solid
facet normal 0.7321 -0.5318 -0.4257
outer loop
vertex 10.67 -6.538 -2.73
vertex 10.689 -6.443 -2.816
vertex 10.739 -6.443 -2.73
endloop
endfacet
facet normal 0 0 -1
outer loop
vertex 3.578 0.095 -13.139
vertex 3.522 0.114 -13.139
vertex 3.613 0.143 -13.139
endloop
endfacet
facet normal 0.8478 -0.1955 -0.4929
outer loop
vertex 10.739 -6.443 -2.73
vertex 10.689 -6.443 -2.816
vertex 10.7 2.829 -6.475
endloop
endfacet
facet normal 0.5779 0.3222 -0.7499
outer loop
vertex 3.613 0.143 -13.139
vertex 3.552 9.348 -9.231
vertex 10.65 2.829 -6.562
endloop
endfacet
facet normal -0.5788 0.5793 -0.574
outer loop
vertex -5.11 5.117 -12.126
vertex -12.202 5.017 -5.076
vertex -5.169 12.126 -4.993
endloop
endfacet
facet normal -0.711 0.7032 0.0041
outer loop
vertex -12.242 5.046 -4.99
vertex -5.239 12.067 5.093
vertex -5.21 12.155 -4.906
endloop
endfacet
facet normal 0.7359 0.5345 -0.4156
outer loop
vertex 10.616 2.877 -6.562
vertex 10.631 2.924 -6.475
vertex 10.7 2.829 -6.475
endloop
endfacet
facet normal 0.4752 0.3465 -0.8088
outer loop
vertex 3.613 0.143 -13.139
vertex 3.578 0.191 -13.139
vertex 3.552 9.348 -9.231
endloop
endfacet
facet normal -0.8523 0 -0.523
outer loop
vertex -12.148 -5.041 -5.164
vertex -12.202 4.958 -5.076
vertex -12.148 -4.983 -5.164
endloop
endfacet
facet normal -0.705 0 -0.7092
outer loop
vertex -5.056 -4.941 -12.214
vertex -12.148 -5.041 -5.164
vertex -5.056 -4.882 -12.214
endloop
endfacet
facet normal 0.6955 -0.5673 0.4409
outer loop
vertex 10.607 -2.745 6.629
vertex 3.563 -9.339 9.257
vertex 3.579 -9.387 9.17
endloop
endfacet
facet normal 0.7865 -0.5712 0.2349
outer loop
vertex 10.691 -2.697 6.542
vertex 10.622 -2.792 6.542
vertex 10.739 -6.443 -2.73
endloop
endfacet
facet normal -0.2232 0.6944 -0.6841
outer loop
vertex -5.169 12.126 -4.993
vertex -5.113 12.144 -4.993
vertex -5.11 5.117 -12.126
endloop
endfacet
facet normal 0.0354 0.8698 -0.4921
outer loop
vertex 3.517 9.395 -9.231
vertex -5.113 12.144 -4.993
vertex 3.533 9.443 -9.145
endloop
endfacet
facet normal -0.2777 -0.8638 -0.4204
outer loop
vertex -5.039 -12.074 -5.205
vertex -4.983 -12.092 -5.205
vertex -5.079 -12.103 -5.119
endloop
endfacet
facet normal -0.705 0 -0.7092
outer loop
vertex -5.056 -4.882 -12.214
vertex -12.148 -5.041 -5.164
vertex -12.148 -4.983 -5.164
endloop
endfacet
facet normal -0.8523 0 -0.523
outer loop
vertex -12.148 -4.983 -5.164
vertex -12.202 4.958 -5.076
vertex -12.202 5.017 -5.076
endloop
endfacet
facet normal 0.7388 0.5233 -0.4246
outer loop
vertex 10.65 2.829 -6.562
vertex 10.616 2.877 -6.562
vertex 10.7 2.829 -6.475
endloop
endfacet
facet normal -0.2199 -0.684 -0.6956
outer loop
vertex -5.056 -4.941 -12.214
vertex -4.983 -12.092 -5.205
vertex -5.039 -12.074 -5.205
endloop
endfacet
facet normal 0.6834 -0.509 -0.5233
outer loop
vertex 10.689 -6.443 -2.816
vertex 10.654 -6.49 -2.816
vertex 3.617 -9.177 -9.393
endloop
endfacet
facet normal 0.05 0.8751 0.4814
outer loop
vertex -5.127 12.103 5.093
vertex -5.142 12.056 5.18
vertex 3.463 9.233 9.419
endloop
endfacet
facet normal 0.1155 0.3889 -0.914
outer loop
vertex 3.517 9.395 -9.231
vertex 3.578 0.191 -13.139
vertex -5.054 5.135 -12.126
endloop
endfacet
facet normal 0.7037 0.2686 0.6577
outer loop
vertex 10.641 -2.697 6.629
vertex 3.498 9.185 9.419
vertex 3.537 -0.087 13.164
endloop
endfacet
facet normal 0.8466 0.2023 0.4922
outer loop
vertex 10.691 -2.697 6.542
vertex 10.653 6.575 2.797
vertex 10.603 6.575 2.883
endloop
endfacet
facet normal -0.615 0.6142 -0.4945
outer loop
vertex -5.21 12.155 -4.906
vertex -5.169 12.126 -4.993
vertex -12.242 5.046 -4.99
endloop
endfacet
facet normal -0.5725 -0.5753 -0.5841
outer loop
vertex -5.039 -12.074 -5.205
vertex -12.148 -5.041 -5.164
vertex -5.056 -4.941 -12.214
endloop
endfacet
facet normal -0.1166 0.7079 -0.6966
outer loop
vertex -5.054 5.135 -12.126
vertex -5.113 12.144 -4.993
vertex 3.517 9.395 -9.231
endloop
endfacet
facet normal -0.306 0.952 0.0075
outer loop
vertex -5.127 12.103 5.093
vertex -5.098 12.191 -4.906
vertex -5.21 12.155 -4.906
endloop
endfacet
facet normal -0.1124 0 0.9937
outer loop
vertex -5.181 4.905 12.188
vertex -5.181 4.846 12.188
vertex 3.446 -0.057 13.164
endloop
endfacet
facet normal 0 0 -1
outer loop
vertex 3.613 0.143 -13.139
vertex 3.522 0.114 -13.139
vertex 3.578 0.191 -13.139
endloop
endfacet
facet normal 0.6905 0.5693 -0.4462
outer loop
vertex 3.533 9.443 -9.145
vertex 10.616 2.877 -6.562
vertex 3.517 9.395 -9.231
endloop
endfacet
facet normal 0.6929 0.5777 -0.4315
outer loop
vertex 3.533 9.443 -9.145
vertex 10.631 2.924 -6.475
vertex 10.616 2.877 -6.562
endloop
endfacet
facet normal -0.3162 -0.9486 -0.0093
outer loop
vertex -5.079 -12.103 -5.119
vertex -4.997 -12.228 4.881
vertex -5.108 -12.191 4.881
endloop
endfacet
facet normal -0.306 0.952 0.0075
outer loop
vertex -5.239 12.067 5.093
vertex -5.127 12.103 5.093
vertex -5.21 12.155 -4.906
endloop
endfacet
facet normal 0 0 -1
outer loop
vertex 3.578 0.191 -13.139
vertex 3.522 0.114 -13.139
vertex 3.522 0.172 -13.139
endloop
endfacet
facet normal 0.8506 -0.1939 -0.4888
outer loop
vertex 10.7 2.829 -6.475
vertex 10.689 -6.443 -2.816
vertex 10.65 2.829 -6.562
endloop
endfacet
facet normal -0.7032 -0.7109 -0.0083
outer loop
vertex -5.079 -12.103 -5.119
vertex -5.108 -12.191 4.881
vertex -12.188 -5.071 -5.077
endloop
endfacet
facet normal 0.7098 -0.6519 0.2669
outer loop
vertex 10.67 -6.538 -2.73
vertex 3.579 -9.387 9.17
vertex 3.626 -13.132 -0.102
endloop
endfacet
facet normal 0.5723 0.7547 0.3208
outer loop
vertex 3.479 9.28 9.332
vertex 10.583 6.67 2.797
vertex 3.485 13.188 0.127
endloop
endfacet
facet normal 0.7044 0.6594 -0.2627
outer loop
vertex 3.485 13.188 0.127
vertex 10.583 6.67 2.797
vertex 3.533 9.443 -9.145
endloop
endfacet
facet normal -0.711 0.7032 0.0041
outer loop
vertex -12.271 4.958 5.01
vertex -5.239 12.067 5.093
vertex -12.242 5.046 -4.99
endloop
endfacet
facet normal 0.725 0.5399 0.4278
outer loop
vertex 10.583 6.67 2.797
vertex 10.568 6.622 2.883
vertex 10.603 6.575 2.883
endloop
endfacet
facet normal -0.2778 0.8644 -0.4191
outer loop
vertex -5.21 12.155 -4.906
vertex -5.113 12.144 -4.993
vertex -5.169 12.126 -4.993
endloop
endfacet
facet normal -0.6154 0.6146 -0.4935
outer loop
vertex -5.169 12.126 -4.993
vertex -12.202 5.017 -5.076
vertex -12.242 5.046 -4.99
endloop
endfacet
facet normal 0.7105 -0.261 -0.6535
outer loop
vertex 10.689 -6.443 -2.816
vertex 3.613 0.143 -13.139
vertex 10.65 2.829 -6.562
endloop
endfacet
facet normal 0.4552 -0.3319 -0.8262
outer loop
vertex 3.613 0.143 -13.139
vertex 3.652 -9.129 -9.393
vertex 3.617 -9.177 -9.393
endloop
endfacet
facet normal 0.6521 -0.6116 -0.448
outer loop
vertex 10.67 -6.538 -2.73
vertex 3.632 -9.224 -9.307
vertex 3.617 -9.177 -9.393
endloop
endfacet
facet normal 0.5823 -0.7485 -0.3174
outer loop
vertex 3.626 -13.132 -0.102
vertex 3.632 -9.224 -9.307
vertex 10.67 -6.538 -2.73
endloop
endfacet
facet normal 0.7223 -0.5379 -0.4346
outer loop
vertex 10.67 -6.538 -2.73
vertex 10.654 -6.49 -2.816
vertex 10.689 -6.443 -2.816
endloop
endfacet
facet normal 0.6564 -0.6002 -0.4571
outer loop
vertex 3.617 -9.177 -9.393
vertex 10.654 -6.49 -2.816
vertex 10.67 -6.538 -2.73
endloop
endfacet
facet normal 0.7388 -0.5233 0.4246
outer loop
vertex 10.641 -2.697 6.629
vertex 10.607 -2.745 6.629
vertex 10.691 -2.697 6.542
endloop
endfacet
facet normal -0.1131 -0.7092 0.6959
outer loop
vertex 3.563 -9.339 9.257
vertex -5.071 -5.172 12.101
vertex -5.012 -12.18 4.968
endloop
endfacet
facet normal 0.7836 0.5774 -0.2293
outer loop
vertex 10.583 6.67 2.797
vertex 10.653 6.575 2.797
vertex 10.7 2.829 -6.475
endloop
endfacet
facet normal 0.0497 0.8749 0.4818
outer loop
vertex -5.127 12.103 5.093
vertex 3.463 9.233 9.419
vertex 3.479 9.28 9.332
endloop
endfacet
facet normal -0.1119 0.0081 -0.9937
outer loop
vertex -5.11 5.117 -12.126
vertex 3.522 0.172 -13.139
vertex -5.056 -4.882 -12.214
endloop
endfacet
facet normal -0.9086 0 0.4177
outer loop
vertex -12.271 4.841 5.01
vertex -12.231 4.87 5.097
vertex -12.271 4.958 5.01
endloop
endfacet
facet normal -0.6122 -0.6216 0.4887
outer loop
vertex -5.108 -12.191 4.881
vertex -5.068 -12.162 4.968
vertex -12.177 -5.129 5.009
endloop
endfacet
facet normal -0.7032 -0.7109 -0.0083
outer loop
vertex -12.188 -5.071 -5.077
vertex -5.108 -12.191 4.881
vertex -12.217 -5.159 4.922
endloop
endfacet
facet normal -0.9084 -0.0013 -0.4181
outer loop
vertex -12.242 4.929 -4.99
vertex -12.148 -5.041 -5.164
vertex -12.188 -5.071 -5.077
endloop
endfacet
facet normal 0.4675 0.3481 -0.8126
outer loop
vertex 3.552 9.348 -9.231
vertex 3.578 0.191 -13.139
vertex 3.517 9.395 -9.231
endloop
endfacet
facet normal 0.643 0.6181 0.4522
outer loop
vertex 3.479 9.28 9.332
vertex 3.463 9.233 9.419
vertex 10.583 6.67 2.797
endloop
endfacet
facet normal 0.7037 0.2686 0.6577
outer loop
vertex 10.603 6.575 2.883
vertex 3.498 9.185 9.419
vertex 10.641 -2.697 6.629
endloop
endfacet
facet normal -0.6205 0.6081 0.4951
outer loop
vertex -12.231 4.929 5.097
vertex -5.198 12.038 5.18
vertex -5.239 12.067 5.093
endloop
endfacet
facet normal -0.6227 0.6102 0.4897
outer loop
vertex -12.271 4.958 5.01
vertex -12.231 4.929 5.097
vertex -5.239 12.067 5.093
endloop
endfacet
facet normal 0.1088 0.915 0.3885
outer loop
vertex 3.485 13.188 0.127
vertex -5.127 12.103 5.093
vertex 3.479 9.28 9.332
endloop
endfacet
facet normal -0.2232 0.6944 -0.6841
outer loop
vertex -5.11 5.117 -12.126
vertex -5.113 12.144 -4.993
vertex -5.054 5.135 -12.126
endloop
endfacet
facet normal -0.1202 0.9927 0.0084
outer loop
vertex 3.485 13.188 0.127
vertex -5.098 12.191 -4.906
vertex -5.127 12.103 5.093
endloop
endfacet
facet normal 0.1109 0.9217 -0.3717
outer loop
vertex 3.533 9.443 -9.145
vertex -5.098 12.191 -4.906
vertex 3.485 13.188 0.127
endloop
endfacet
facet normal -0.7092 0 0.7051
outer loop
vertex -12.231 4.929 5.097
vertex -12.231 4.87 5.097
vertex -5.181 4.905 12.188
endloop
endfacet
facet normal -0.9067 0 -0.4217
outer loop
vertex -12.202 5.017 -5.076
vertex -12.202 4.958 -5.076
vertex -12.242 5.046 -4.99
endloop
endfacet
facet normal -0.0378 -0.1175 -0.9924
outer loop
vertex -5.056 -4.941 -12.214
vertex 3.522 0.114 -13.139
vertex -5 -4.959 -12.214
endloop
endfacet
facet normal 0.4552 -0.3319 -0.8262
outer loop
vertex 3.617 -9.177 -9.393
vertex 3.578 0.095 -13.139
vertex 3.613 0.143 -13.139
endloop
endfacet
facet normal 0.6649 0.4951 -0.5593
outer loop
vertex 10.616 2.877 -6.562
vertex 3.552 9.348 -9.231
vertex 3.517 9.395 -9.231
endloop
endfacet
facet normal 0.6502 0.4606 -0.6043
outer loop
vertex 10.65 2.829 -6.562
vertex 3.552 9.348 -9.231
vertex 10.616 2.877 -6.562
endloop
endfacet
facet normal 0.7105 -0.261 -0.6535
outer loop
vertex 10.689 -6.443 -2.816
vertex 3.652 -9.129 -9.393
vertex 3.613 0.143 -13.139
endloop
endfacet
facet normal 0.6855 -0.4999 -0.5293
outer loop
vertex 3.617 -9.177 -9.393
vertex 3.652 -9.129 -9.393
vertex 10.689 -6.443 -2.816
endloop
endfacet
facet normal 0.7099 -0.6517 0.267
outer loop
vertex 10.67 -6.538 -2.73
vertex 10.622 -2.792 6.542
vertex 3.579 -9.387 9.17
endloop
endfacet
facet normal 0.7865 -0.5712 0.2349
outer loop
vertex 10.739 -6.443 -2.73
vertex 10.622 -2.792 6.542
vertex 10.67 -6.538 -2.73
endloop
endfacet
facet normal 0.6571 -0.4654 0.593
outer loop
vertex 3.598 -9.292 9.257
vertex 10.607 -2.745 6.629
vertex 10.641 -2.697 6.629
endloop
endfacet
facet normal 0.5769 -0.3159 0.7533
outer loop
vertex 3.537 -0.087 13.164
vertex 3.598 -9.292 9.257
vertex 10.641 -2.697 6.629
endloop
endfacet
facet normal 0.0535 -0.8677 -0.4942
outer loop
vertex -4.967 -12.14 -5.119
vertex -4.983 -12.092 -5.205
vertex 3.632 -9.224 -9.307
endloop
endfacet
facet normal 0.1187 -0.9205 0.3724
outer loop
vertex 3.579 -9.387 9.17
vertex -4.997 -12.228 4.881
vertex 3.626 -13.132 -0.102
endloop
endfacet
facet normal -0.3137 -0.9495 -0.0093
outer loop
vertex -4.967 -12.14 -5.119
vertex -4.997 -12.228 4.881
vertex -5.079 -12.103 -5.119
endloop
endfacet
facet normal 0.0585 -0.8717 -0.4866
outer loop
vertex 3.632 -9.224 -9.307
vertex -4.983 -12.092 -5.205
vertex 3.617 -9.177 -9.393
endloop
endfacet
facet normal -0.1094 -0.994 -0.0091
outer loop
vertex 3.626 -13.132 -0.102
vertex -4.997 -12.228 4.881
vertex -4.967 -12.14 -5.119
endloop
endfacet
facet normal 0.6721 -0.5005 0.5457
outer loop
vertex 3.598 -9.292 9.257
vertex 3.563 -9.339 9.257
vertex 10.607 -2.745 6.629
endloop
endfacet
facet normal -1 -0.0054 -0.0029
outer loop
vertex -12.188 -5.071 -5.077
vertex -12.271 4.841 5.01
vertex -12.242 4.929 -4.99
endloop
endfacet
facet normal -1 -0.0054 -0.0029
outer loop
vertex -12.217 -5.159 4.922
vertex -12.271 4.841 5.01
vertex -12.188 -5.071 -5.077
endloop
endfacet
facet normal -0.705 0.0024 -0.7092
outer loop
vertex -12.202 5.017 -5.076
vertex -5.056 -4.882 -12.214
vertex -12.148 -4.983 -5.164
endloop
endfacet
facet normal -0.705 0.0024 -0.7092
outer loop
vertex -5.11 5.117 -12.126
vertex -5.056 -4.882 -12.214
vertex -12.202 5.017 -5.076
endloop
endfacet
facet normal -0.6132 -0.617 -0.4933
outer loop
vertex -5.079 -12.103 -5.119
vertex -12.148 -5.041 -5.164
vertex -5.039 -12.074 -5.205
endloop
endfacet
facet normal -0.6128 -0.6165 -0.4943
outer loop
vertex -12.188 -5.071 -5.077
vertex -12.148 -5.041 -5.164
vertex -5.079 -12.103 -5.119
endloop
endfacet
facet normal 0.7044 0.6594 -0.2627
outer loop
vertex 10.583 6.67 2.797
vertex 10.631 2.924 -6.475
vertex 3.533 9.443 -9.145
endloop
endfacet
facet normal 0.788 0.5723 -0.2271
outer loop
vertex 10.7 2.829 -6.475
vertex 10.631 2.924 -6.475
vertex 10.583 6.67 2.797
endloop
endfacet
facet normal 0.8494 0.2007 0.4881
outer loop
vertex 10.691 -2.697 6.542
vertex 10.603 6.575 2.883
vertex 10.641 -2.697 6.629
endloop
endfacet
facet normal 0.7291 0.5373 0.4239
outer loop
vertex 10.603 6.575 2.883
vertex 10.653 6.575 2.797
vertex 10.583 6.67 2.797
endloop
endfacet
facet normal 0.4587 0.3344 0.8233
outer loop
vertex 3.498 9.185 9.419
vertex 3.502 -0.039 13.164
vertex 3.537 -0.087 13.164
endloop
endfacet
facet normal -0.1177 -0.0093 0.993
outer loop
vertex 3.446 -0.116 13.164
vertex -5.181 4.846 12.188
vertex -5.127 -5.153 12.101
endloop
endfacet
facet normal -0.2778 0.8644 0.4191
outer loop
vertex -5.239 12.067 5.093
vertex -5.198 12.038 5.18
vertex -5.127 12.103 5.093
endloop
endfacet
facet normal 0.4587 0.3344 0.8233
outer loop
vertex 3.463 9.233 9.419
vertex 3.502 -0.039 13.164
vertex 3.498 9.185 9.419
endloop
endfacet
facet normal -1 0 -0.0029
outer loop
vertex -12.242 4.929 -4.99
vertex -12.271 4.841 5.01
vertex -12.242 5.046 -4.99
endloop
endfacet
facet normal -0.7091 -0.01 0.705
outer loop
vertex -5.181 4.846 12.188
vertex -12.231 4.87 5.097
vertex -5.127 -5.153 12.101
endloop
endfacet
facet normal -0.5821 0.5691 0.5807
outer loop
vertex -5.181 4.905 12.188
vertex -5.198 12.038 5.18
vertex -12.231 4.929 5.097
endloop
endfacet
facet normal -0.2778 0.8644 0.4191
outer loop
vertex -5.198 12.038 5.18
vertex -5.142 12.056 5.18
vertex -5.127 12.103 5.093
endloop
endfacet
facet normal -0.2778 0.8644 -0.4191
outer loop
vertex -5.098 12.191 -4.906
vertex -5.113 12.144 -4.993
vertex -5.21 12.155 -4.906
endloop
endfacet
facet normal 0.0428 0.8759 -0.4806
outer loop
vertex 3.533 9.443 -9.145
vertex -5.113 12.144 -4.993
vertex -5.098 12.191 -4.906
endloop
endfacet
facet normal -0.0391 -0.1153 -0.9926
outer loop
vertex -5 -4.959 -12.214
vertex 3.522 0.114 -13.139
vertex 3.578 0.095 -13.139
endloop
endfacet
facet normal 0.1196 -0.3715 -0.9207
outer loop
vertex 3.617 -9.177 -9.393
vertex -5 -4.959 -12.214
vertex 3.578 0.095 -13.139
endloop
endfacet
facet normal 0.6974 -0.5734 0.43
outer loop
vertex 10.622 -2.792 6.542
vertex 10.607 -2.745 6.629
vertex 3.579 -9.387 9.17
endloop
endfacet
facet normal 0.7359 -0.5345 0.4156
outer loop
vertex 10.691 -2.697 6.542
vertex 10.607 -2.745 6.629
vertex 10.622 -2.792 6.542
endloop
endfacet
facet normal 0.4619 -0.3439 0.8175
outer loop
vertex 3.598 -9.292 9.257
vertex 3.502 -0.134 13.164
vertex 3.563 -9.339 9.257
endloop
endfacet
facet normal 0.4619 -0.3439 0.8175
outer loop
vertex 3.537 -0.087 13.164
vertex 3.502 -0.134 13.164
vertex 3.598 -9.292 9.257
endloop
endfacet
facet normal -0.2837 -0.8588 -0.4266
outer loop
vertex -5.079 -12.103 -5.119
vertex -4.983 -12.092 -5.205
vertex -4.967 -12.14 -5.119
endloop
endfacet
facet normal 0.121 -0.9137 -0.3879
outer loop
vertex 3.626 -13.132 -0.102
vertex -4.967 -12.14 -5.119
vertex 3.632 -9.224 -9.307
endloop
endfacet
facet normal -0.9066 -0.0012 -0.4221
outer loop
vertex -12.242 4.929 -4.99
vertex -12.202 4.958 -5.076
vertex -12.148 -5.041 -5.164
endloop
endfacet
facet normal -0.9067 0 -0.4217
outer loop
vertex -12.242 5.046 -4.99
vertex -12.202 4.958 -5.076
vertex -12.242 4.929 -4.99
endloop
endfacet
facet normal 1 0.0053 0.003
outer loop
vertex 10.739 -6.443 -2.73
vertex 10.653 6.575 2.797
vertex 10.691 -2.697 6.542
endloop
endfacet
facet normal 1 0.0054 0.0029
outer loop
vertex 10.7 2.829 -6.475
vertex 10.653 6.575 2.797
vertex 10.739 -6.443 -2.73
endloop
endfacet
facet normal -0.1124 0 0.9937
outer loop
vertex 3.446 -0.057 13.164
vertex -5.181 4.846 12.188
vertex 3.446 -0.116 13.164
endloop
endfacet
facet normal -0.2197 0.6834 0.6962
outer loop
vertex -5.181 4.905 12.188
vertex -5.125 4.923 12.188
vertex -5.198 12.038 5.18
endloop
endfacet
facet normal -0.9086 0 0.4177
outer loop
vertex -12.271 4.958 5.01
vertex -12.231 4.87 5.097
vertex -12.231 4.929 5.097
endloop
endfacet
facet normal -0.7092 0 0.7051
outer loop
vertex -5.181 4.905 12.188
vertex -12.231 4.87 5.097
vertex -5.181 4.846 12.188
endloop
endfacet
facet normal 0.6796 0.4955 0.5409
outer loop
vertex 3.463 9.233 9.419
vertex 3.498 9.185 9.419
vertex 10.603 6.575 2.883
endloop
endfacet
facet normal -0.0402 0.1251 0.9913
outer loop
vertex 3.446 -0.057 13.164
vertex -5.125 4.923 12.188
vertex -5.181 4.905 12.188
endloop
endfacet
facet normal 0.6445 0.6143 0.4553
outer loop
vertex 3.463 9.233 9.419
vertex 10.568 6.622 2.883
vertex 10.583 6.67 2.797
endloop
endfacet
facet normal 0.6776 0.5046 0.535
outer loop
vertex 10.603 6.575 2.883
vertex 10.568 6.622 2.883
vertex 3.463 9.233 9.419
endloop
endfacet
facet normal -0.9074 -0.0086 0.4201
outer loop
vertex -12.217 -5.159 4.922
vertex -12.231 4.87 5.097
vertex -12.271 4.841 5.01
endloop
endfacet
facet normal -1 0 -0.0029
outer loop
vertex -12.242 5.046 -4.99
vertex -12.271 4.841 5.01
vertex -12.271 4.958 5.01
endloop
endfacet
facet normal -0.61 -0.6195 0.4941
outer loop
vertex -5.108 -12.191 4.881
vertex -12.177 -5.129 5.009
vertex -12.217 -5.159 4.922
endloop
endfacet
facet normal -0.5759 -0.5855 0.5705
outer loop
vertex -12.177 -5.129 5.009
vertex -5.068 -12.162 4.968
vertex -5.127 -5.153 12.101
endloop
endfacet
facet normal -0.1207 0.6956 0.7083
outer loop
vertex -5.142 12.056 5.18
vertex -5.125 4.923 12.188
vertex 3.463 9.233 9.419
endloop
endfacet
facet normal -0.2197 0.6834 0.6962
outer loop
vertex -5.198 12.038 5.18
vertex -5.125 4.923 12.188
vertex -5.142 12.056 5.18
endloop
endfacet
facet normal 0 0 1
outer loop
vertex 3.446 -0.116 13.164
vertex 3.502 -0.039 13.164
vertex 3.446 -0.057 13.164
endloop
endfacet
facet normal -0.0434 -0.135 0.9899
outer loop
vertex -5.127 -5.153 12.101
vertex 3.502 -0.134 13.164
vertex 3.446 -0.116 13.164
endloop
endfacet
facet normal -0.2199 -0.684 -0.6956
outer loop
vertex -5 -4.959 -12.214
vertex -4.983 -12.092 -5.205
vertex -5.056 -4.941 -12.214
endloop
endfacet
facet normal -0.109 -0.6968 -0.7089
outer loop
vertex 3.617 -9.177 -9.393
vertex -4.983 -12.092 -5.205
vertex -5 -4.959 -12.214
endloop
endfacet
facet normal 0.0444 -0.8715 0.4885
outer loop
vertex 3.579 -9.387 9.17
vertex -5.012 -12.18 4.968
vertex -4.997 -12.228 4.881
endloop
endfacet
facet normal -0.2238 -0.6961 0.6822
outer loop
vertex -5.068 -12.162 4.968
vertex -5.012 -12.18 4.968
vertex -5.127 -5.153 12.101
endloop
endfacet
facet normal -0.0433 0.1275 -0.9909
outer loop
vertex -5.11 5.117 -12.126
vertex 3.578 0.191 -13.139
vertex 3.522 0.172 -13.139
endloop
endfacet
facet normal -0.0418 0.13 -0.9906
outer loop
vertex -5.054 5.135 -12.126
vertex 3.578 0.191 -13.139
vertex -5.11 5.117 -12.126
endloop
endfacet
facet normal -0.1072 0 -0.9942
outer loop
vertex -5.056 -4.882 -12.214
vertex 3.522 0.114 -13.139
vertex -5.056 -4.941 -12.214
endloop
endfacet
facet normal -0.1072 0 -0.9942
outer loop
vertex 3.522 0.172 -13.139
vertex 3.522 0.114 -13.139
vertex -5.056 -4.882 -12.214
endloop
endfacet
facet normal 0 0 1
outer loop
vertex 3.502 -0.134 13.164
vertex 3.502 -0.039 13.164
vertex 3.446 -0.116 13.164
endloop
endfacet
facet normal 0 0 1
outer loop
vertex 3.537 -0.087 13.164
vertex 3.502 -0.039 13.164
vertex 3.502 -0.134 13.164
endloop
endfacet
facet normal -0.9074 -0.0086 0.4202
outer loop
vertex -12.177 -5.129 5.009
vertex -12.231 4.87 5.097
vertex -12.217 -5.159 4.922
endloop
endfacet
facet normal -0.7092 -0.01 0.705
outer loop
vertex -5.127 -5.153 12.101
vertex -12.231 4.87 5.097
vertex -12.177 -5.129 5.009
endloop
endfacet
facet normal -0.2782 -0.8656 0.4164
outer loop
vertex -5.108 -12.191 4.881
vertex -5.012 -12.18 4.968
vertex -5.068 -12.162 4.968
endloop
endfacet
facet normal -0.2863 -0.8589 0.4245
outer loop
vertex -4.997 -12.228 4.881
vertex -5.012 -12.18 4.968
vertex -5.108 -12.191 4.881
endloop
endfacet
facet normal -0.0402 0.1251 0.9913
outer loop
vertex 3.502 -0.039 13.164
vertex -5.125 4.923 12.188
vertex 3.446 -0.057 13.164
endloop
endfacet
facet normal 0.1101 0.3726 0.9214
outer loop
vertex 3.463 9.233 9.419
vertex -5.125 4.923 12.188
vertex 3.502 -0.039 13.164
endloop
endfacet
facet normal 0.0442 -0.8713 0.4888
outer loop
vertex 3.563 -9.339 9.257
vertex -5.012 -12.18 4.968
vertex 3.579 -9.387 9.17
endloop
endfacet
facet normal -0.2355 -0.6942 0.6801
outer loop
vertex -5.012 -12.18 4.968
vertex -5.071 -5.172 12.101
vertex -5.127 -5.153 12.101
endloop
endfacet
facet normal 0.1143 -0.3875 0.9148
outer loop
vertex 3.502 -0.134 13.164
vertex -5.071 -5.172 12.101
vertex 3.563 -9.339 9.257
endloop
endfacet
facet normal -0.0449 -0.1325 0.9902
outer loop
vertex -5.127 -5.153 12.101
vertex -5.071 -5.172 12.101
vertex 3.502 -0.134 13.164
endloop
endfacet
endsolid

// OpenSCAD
// Auto-generated OpenSCAD file

    inner_points = 10*[[-0.5027427746732974, -1.2132577404539668, 0.4881043623012211], [-0.499831290049384, -1.204459418490458, -0.5118526931706182], [-0.5157776363132736, 1.200827522309684, 0.5093072214379191], [-0.5128661516893601, 1.2096258442731929, -0.49064983403392026], [-0.5086193277767076, -0.5124098904764615, 1.201390950781287], [-0.501590382111015, -0.4911688622660335, -1.2127189343294926], [-0.5140185442516425, 0.48753696608525965, 1.2101734625967935], [-0.5069895985859499, 0.5087779942956876, -1.2039364225139861], [0.359529337093046, -1.3036867530634884, -0.010202168810380517], [0.34542050452204526, 1.3093003061927015, 0.012747640543079655], [0.3486708828251333, -0.00868878506597237, 1.3077795910126873], [0.356278958789958, 0.014302338195185572, -1.3052341192799881], [0.35477328534708075, -0.9291522473942972, 0.9169986098966502], [0.36015300745359075, -0.9128950682292366, -0.9306811039847213], [0.34479683416150053, 0.9185086213584498, 0.9332265757174204], [0.3501765562680105, 0.9347658005235104, -0.914453138163951], [-1.2136540747107942, -0.5099881151558083, 0.492222324416665], [-1.210742590086881, -0.5011897931922996, -0.5077347310551743], [-1.2190532911857292, 0.4899587414059127, 0.5010048362321716], [-1.2161418065618157, 0.49875706336942155, -0.49895221923966776], [1.063883448467321, -0.6442596016793936, -0.2729589342943806], [1.0552533480577226, 0.6574723104142199, 0.27968882911738335], [1.0591273967213557, -0.26972509601020234, 0.6542418444126501], [1.0600093998036881, 0.2829378047450287, -0.6475119495896475]];

    outer_points = 10*[[0.3363850936800798, 0.49717027434153493, 1.2376593574683699], [0.341756318462831, -0.5028082510208011, 1.2339045261138102], [-1.0468325897833741, 0.49717027434153493, -0.7410108942158731], [-1.041461365000623, -0.5028082510208011, -0.7447657255704329], [-0.07254801541637895, 1.2042618706661667, 0.6607753251951688], [-0.05958073169930672, -1.2098998473454328, 0.6517103604145671], [-0.6454955396212365, 1.2042618706661667, -0.1588167285166301], [-0.6325282559041643, -1.2098998473454328, -0.16788169329723182], [1.1011301516039498, 0.002818988339633091, 0.8244018077378379], [-0.3960538802834066, 0.002818988339633091, -1.317295439635775], [0.3455202922831028, 1.3093538952497537, -0.2415408923617442], [0.35955597903744035, -1.3037159185704876, -0.2513527395361928], [0.8769102618348533, 0.926678680872714, 0.514226519320763], [0.8868349911174557, -0.9210407041934477, 0.5072884956477444], [-0.1817587197969125, 0.926678680872714, -1.0001821275456813], [-0.17183399051431014, -0.9210407041934477, -1.0071201512187], [-0.6482766395432775, 0.49253622567066274, 1.063246637982406], [-0.6429054147605264, -0.5074422996916733, 1.0594918066278463], [-1.2212241637481351, 0.49253622567066274, 0.24365458427060716], [-1.215852938965384, -0.5074422996916733, 0.23989975291604748], [1.3078142401788866, -0.26313920206751534, -0.11716493364872071], [0.5563153383297748, 0.27804527608852586, -1.1859814572497327], [1.0835943504097902, 0.6607204904655656, -0.4273402220657956], [0.7805352280988713, -0.6458144164445551, -0.8758061688326578]];

    // Convex hull for inner set (I)
    module inner_hull() {
        hull() {
            for (p = inner_points) {
                translate(p) sphere(r=0.1);
            }
        }
    }

    // Convex hull for outer set (O) minus inner hull (O \ I)
    module outer_minus_inner() {
        difference() {
            hull() {
                for (p = outer_points) {
                    translate(p) sphere(r=0.1);
                }
            }
            inner_hull(); // Subtract inner hull
        }
    }

    // Convex hull for outer set (O) minus all translated inner hulls
    module outer_minus_AllTranslationInner() {
        difference() {
            hull() {
                for (p = outer_points) {
                    translate(p) sphere(r=0.1);
                }
            }
            hull() {
                translate([0,0,50]) inner_hull();
                translate([0,0,-50]) inner_hull();
            }; // Subtract translated inner hulls
        }
    }

    // Difference between outer_minus_inner and outer_minus_AllTranslationInner
    module outer_minus_inner_diff() {
        difference() {
            // Outer minus inner
            difference() {
                hull() {
                    for (p = outer_points) {
                        translate(p) sphere(r=0.1);
                    }
                }
                inner_hull();
            }

            // Subtract Outer minus AllTranslationInner
            difference() {
                hull() {
                    for (p = outer_points) {
                        translate(p) sphere(r=0.1);
                    }
                }
                hull() {
                    translate([0,0,50]) inner_hull();
                    translate([0,0,-50]) inner_hull();
                };
            }
        }
    }

    // Rendering all with colors applied
    color([1, 0, 0, 0.5]) inner_hull(); // Transparent red
    
